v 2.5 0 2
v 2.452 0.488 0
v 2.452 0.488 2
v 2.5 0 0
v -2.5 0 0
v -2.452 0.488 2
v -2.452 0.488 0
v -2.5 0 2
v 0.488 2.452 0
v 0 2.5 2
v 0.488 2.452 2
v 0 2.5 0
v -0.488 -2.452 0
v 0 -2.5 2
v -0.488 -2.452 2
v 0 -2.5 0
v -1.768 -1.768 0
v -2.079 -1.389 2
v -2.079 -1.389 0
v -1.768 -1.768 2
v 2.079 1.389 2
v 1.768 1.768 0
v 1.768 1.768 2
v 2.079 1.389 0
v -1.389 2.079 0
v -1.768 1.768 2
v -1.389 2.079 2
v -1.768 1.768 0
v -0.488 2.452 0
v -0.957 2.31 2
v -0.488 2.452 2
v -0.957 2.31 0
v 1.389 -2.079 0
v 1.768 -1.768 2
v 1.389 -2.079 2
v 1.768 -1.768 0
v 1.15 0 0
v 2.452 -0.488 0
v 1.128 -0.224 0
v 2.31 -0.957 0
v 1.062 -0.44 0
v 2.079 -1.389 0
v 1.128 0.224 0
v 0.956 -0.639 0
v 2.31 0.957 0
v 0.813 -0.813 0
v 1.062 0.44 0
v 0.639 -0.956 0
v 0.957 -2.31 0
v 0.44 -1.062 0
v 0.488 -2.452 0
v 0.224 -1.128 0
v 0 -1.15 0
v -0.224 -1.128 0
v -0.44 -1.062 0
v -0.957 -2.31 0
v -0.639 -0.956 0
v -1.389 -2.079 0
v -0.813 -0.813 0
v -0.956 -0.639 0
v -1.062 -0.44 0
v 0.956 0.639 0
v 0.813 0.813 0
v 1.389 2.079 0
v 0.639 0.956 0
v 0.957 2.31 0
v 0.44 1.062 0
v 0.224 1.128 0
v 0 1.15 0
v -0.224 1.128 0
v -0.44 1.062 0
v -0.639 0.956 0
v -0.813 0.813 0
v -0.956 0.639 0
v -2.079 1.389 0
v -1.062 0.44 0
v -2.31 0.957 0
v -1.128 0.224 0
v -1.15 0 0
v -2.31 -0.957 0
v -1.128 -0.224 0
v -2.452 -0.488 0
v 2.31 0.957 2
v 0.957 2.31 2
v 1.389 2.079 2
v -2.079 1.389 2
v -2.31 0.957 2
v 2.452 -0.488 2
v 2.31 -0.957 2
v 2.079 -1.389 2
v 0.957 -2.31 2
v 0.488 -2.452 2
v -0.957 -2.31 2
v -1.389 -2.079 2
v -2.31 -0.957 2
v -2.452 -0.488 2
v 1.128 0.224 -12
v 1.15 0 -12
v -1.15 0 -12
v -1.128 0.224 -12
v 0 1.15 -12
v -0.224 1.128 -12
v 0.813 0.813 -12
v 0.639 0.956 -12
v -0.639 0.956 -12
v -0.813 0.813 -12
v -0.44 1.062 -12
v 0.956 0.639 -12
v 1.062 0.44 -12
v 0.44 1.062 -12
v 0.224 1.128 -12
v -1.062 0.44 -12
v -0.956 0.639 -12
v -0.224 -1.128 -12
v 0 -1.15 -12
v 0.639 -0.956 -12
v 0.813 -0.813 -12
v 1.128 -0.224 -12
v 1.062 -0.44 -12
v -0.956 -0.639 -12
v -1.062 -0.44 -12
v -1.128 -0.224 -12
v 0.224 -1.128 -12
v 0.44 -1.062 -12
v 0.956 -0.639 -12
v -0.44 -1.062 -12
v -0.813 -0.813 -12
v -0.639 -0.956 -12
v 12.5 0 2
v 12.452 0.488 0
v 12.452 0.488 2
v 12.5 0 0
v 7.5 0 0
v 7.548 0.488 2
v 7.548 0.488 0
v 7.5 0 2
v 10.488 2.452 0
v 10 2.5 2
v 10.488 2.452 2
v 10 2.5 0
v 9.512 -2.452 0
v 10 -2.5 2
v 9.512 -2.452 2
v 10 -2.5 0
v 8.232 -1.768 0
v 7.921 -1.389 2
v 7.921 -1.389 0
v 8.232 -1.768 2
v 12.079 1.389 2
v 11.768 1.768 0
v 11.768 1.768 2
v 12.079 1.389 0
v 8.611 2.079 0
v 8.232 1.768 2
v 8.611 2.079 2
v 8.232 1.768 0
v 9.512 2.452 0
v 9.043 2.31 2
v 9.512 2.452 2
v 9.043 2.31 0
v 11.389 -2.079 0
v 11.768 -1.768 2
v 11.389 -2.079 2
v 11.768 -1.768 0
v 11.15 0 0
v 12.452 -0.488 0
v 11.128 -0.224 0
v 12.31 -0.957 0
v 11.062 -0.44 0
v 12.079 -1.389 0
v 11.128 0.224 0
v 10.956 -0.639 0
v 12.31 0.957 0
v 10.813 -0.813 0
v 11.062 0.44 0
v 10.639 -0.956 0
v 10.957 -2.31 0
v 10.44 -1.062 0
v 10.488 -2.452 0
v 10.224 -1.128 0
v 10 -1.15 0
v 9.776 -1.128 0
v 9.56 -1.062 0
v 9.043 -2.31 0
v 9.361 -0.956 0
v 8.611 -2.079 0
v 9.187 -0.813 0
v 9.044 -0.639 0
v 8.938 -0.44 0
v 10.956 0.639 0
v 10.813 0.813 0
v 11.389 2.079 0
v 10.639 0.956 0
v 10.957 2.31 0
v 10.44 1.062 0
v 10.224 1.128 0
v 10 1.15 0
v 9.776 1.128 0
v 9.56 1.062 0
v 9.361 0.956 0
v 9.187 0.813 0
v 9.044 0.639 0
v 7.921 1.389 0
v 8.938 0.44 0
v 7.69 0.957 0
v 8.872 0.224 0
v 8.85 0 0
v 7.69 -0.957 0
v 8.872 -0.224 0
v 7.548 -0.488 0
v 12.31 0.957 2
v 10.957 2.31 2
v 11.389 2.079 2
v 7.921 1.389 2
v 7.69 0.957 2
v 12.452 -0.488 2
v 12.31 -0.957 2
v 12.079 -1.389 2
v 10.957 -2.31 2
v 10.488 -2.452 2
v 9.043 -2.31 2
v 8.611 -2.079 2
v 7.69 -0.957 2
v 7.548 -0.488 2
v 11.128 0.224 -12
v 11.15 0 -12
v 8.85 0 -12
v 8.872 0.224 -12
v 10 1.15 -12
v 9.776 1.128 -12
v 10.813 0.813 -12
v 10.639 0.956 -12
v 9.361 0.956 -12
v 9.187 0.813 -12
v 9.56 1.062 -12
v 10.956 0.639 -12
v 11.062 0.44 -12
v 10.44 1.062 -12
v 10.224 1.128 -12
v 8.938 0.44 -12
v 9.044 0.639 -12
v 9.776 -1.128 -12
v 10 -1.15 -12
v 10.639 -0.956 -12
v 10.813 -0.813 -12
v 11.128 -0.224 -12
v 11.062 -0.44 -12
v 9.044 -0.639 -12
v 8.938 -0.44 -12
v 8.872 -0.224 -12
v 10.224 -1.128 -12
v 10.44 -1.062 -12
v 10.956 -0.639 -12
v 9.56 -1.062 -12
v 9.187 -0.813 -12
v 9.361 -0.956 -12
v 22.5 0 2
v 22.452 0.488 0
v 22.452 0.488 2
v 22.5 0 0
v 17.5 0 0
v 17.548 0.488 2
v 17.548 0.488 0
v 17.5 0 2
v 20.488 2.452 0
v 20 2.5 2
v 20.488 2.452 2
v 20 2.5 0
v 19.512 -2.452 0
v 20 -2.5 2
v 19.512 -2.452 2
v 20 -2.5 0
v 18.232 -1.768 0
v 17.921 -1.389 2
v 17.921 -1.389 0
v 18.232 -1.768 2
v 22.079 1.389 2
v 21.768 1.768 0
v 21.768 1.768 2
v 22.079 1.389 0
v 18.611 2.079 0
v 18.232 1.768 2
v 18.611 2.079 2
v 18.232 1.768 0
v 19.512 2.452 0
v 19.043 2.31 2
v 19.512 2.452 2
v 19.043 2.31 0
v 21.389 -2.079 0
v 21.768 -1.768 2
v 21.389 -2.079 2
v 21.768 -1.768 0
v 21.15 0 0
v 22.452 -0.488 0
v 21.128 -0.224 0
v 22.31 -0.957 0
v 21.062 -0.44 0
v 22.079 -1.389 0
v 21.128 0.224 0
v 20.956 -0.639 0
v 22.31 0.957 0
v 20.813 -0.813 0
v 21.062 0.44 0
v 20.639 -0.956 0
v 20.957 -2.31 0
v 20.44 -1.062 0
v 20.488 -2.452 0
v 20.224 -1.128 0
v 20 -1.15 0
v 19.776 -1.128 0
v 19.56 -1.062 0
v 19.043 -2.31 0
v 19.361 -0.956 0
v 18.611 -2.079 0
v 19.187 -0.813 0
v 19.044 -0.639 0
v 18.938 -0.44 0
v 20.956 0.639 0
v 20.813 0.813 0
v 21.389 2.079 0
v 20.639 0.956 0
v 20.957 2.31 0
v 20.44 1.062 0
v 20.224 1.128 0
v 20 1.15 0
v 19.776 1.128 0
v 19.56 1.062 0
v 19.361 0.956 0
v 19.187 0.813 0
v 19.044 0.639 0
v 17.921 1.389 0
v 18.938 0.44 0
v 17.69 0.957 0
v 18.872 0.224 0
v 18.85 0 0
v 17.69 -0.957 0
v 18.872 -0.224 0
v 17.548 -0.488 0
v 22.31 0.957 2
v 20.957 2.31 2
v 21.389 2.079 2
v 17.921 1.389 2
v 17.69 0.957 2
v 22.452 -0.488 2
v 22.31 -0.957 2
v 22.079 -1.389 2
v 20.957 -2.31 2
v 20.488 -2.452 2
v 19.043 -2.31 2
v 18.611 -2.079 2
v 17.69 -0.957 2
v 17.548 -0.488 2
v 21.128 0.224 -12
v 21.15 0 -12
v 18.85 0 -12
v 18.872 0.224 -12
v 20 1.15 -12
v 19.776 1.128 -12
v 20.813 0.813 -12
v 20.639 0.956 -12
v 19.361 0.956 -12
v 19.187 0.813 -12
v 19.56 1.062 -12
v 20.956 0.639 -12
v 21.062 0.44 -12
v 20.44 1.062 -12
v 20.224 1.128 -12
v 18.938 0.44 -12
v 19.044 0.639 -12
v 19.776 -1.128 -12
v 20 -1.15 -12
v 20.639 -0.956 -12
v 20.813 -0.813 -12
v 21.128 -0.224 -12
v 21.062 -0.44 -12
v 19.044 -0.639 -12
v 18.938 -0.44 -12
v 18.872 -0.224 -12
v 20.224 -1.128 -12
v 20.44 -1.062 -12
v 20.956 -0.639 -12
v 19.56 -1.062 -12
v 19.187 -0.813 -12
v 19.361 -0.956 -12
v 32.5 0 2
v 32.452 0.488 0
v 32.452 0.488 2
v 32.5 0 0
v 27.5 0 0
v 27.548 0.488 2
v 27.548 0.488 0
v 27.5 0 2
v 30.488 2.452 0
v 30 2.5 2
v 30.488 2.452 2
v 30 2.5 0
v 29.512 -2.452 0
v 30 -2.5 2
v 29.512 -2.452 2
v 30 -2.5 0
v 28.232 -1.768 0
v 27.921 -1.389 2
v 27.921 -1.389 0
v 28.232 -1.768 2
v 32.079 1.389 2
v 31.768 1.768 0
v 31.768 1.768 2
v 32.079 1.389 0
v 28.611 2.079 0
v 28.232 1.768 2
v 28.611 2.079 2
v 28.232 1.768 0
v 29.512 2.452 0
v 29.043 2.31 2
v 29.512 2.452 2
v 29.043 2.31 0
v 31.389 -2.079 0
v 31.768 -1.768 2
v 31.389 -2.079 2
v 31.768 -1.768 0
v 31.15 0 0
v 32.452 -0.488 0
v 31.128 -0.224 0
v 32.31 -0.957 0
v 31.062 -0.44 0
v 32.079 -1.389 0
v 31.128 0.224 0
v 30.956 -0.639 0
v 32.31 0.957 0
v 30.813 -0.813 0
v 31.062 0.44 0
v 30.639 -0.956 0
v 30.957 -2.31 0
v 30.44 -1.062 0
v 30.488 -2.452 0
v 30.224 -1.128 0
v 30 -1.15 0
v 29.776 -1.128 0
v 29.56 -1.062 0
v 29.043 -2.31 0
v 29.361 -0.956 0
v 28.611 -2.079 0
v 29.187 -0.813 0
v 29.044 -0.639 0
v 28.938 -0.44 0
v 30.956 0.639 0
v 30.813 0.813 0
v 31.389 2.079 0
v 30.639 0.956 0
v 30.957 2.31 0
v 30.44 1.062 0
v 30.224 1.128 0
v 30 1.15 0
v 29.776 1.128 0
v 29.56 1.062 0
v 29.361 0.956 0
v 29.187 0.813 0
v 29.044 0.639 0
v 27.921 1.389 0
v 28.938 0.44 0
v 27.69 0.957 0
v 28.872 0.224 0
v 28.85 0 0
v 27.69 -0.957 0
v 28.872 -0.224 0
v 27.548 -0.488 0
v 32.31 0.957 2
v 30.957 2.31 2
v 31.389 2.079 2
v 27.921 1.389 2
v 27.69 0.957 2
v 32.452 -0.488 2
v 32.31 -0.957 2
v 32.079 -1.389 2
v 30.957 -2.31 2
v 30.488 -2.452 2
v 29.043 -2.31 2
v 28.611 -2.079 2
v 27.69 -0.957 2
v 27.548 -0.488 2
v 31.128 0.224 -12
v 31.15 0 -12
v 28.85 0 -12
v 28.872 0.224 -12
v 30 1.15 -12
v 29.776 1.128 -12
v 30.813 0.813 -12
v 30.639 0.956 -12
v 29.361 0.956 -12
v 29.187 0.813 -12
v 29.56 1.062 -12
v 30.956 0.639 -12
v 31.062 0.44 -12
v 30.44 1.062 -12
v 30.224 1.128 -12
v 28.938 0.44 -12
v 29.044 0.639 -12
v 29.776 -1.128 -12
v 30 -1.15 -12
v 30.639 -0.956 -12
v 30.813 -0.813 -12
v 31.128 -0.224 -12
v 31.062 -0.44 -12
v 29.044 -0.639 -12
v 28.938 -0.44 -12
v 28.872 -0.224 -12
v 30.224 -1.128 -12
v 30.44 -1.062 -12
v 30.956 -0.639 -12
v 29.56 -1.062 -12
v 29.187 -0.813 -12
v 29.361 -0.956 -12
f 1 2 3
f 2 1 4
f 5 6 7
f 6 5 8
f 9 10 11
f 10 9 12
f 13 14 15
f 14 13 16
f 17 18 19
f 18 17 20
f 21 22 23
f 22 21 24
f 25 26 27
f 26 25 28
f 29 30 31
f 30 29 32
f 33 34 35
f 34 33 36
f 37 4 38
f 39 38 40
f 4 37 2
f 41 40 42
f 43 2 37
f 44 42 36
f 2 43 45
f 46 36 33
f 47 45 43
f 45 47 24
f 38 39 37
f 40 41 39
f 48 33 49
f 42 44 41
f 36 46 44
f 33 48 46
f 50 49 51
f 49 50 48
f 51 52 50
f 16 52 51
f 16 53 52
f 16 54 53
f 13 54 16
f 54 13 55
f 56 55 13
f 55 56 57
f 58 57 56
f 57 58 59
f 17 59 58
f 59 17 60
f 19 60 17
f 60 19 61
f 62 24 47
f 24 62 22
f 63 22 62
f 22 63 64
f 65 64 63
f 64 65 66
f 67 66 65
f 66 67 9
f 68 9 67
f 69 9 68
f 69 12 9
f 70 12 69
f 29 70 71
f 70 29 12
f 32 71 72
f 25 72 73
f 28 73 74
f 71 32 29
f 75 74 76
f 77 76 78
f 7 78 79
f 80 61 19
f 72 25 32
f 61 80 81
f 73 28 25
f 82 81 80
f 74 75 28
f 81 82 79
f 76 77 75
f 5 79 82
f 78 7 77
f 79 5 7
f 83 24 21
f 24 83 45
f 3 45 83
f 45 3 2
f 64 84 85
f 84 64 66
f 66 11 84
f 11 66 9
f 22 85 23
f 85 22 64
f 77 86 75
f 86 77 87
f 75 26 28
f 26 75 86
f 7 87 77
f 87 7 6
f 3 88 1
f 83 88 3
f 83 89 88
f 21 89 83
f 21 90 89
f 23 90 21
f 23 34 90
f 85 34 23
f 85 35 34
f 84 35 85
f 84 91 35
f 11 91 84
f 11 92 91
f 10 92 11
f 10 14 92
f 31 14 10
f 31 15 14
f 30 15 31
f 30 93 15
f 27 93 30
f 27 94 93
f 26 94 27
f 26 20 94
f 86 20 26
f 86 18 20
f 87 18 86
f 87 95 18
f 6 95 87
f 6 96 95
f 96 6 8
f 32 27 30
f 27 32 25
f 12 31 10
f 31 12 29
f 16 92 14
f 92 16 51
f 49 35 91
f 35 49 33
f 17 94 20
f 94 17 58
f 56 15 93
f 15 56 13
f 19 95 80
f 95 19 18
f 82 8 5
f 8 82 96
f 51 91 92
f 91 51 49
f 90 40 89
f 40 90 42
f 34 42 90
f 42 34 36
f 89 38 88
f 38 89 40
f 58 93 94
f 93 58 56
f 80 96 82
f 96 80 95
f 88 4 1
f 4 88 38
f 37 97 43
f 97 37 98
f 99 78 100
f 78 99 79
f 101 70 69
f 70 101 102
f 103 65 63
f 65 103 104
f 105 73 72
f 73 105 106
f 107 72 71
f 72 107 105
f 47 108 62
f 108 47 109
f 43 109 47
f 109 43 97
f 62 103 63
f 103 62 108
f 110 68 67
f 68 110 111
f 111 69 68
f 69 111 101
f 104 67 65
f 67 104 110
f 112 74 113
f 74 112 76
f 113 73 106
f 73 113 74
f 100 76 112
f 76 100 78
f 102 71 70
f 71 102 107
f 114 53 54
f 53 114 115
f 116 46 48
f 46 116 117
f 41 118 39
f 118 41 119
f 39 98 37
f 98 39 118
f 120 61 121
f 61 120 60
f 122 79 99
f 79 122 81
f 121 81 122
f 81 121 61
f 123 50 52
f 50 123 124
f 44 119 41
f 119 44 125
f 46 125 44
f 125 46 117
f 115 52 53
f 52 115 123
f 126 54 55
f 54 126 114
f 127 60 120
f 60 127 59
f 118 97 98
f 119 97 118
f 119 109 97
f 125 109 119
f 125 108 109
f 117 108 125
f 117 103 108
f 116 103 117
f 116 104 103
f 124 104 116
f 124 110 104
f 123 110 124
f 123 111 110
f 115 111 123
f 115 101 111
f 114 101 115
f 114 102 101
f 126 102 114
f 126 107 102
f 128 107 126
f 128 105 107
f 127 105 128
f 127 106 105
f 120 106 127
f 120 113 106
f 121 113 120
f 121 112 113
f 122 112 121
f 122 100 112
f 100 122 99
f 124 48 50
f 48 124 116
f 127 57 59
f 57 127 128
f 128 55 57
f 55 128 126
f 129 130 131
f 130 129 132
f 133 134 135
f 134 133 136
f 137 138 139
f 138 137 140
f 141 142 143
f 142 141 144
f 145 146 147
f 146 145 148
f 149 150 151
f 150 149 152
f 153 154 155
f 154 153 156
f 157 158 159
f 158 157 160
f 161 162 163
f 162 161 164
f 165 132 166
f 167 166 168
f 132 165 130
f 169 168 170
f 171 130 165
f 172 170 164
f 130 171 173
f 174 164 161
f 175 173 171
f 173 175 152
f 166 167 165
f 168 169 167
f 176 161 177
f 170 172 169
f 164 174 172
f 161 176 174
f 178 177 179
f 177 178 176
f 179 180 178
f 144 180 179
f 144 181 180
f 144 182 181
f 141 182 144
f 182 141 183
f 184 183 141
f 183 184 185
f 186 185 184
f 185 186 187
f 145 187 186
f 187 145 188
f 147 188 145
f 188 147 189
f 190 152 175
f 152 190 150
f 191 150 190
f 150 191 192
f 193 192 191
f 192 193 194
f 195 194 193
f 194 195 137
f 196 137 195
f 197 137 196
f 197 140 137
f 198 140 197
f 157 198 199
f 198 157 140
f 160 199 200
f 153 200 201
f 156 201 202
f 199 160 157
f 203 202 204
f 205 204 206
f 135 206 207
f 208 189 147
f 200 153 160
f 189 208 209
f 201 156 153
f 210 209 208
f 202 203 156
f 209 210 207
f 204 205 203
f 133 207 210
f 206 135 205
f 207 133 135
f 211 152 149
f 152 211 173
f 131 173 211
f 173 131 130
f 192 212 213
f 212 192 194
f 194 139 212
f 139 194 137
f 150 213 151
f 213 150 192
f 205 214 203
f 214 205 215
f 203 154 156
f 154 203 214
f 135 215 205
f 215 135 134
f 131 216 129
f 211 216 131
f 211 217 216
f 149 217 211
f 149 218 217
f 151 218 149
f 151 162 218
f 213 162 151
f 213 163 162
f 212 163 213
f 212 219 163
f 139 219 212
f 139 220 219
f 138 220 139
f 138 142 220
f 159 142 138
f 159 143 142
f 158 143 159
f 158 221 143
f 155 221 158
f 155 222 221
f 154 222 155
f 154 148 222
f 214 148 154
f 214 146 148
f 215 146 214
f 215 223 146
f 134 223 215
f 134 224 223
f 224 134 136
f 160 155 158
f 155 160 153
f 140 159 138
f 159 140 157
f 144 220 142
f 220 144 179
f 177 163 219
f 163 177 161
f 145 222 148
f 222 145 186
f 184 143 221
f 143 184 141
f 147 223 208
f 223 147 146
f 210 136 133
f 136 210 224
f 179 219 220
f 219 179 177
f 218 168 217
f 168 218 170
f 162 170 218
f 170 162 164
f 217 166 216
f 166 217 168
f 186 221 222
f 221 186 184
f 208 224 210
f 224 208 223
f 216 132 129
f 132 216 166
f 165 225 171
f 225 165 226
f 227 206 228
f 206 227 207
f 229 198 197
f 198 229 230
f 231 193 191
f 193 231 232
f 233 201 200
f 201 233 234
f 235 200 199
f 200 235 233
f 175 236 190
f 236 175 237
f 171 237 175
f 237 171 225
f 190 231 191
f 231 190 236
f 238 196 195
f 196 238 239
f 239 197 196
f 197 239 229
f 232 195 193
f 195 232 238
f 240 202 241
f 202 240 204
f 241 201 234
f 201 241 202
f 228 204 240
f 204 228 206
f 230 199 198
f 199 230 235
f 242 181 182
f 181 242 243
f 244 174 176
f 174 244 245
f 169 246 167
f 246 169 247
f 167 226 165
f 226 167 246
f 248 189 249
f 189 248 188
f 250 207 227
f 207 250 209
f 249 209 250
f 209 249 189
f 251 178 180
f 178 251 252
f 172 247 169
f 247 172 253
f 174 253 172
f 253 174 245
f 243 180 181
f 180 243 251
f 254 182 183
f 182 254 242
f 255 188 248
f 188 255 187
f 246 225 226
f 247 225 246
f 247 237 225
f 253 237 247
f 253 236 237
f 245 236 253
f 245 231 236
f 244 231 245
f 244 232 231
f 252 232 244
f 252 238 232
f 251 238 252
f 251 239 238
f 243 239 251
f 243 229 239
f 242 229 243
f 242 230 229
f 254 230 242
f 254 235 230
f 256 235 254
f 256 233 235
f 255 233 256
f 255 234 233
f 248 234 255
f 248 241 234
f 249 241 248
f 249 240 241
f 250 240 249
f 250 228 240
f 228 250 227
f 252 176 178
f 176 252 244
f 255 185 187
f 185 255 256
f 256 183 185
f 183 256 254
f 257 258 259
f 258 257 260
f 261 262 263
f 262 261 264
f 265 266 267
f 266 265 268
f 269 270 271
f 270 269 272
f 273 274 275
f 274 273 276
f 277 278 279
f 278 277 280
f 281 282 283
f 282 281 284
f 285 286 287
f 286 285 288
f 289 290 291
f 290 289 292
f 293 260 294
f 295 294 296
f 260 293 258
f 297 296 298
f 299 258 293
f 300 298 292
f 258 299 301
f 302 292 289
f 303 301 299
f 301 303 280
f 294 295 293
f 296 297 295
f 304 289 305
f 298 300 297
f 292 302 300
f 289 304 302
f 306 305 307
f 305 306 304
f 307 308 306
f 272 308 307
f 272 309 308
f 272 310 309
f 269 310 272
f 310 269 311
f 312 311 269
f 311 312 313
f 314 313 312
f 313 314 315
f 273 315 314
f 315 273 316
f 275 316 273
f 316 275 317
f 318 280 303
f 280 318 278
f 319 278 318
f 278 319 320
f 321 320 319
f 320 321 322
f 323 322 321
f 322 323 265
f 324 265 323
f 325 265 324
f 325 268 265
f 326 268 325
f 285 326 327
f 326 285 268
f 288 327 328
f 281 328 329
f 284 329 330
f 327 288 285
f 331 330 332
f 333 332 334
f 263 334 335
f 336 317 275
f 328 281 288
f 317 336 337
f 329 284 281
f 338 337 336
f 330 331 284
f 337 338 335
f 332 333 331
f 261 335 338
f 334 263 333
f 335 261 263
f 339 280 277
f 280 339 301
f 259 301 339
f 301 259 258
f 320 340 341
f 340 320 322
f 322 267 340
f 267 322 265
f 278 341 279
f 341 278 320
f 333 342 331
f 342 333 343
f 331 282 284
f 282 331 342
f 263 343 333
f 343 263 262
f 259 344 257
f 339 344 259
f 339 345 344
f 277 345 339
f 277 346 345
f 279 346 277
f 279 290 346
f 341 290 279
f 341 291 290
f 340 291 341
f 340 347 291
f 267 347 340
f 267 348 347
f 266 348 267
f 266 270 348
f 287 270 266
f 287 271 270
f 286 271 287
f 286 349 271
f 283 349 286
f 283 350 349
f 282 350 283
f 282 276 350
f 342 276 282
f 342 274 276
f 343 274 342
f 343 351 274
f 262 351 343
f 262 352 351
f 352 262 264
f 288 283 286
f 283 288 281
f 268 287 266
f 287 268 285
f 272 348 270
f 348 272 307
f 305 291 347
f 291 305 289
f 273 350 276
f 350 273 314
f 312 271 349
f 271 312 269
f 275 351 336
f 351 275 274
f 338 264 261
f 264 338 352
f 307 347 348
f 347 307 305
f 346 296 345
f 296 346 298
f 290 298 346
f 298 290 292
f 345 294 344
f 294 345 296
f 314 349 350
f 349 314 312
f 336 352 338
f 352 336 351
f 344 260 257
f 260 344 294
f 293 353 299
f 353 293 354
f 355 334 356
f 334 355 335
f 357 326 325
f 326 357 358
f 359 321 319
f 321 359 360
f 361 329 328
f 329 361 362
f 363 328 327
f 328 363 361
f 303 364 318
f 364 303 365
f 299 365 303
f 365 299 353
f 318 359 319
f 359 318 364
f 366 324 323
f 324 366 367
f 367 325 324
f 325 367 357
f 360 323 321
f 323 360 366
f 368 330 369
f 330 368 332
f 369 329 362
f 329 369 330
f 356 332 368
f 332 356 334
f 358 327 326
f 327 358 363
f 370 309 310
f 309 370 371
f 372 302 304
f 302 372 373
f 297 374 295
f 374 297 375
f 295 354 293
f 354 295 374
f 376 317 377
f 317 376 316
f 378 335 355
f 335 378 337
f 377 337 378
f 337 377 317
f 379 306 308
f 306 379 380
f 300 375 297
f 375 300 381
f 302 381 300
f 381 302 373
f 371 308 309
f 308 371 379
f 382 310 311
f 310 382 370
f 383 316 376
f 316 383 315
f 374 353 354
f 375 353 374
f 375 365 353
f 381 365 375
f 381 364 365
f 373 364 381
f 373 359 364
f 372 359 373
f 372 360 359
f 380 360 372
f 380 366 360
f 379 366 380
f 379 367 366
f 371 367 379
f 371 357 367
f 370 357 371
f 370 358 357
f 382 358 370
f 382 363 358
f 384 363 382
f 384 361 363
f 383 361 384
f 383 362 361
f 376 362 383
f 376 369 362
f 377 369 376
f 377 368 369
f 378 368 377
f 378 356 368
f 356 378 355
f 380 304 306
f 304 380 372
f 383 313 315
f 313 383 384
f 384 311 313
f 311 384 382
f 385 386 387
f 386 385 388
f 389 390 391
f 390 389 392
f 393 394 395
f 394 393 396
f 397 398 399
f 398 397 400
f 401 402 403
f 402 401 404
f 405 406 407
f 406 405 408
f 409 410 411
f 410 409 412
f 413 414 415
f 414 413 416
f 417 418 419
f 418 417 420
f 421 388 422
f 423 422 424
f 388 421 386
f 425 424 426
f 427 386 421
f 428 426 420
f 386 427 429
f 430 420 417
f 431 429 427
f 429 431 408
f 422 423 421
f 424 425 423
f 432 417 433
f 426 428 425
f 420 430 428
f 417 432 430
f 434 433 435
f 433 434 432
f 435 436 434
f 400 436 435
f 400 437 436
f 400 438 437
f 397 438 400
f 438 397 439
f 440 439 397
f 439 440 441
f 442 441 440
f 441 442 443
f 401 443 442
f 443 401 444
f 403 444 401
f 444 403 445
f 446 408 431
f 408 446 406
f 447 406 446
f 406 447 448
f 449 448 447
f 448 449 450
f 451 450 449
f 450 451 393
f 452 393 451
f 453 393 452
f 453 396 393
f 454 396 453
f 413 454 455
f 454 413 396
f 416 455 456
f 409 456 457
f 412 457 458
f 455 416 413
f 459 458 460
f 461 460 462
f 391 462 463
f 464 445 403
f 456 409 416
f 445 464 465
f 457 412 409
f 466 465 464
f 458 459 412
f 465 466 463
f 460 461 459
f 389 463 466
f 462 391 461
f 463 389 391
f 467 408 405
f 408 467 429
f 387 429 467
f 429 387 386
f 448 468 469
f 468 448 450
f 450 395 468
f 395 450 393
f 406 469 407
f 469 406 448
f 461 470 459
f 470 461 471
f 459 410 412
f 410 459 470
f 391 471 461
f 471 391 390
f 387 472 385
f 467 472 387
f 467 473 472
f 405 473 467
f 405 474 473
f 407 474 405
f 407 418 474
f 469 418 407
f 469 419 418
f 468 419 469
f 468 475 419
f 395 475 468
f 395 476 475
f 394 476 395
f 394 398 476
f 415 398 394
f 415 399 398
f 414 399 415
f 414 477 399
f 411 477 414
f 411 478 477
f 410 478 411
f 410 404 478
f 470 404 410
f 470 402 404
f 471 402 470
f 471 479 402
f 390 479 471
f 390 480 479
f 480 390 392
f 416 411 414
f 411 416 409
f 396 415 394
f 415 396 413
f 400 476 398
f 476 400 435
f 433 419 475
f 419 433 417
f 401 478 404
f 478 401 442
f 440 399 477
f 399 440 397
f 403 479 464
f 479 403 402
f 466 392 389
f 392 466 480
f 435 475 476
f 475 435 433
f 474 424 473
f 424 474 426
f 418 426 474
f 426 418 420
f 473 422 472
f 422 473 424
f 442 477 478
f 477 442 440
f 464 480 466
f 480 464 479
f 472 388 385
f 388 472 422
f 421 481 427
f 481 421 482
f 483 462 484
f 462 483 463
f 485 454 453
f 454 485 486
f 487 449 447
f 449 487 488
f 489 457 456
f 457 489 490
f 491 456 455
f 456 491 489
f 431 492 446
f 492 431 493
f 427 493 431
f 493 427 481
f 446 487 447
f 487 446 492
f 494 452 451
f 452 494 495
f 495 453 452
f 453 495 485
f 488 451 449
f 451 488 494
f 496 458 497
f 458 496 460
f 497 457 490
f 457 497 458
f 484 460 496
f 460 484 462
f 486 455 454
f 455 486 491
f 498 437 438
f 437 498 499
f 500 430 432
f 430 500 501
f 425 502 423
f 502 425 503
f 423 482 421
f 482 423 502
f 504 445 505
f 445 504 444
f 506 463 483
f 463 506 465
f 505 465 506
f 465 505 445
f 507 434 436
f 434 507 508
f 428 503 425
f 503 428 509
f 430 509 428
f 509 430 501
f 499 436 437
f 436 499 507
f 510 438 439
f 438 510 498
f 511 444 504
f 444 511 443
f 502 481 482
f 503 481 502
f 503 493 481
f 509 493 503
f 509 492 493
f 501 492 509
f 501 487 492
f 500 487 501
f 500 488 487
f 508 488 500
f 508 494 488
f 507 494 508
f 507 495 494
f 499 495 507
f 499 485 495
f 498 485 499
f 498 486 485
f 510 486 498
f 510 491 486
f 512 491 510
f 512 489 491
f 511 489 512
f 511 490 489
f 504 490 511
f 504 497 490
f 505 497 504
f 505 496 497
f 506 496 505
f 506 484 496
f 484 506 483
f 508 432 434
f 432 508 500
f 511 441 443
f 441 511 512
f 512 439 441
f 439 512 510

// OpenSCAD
// Raspberry Pi 3B Mounting Pins
// Push-fit pins to secure Pi to mounting posts
// No screws needed!

// === PARAMETERS ===
post_diameter = 2.5;        // Diameter of post on base (M2.5 screw hole size)
pin_shaft_diameter = 2.3;   // Slightly smaller for tight fit in post
pin_length = 12;            // Length to go through Pi board (2.5mm) + post height
head_diameter = 5;          // Larger head to hold Pi down
head_height = 2;            // Thin head above Pi board
taper_length = 3;           // Tapered tip for easy insertion

$fn = 32;

module mounting_pin() {
    union() {
        // Head (sits on top of Pi)
        cylinder(d=head_diameter, h=head_height);
        
        // Shaft (goes through Pi hole and into post)
        translate([0, 0, -pin_length])
            cylinder(d=pin_shaft_diameter, h=pin_length);
        
        // Tapered tip for easy insertion
        translate([0, 0, -pin_length])
            cylinder(d1=1.5, d2=pin_shaft_diameter, h=taper_length);
    }
}

// Generate 4 pins laid out for printing
for (i = [0:3]) {
    translate([i * 10, 0, 0])
        mounting_pin();
}
